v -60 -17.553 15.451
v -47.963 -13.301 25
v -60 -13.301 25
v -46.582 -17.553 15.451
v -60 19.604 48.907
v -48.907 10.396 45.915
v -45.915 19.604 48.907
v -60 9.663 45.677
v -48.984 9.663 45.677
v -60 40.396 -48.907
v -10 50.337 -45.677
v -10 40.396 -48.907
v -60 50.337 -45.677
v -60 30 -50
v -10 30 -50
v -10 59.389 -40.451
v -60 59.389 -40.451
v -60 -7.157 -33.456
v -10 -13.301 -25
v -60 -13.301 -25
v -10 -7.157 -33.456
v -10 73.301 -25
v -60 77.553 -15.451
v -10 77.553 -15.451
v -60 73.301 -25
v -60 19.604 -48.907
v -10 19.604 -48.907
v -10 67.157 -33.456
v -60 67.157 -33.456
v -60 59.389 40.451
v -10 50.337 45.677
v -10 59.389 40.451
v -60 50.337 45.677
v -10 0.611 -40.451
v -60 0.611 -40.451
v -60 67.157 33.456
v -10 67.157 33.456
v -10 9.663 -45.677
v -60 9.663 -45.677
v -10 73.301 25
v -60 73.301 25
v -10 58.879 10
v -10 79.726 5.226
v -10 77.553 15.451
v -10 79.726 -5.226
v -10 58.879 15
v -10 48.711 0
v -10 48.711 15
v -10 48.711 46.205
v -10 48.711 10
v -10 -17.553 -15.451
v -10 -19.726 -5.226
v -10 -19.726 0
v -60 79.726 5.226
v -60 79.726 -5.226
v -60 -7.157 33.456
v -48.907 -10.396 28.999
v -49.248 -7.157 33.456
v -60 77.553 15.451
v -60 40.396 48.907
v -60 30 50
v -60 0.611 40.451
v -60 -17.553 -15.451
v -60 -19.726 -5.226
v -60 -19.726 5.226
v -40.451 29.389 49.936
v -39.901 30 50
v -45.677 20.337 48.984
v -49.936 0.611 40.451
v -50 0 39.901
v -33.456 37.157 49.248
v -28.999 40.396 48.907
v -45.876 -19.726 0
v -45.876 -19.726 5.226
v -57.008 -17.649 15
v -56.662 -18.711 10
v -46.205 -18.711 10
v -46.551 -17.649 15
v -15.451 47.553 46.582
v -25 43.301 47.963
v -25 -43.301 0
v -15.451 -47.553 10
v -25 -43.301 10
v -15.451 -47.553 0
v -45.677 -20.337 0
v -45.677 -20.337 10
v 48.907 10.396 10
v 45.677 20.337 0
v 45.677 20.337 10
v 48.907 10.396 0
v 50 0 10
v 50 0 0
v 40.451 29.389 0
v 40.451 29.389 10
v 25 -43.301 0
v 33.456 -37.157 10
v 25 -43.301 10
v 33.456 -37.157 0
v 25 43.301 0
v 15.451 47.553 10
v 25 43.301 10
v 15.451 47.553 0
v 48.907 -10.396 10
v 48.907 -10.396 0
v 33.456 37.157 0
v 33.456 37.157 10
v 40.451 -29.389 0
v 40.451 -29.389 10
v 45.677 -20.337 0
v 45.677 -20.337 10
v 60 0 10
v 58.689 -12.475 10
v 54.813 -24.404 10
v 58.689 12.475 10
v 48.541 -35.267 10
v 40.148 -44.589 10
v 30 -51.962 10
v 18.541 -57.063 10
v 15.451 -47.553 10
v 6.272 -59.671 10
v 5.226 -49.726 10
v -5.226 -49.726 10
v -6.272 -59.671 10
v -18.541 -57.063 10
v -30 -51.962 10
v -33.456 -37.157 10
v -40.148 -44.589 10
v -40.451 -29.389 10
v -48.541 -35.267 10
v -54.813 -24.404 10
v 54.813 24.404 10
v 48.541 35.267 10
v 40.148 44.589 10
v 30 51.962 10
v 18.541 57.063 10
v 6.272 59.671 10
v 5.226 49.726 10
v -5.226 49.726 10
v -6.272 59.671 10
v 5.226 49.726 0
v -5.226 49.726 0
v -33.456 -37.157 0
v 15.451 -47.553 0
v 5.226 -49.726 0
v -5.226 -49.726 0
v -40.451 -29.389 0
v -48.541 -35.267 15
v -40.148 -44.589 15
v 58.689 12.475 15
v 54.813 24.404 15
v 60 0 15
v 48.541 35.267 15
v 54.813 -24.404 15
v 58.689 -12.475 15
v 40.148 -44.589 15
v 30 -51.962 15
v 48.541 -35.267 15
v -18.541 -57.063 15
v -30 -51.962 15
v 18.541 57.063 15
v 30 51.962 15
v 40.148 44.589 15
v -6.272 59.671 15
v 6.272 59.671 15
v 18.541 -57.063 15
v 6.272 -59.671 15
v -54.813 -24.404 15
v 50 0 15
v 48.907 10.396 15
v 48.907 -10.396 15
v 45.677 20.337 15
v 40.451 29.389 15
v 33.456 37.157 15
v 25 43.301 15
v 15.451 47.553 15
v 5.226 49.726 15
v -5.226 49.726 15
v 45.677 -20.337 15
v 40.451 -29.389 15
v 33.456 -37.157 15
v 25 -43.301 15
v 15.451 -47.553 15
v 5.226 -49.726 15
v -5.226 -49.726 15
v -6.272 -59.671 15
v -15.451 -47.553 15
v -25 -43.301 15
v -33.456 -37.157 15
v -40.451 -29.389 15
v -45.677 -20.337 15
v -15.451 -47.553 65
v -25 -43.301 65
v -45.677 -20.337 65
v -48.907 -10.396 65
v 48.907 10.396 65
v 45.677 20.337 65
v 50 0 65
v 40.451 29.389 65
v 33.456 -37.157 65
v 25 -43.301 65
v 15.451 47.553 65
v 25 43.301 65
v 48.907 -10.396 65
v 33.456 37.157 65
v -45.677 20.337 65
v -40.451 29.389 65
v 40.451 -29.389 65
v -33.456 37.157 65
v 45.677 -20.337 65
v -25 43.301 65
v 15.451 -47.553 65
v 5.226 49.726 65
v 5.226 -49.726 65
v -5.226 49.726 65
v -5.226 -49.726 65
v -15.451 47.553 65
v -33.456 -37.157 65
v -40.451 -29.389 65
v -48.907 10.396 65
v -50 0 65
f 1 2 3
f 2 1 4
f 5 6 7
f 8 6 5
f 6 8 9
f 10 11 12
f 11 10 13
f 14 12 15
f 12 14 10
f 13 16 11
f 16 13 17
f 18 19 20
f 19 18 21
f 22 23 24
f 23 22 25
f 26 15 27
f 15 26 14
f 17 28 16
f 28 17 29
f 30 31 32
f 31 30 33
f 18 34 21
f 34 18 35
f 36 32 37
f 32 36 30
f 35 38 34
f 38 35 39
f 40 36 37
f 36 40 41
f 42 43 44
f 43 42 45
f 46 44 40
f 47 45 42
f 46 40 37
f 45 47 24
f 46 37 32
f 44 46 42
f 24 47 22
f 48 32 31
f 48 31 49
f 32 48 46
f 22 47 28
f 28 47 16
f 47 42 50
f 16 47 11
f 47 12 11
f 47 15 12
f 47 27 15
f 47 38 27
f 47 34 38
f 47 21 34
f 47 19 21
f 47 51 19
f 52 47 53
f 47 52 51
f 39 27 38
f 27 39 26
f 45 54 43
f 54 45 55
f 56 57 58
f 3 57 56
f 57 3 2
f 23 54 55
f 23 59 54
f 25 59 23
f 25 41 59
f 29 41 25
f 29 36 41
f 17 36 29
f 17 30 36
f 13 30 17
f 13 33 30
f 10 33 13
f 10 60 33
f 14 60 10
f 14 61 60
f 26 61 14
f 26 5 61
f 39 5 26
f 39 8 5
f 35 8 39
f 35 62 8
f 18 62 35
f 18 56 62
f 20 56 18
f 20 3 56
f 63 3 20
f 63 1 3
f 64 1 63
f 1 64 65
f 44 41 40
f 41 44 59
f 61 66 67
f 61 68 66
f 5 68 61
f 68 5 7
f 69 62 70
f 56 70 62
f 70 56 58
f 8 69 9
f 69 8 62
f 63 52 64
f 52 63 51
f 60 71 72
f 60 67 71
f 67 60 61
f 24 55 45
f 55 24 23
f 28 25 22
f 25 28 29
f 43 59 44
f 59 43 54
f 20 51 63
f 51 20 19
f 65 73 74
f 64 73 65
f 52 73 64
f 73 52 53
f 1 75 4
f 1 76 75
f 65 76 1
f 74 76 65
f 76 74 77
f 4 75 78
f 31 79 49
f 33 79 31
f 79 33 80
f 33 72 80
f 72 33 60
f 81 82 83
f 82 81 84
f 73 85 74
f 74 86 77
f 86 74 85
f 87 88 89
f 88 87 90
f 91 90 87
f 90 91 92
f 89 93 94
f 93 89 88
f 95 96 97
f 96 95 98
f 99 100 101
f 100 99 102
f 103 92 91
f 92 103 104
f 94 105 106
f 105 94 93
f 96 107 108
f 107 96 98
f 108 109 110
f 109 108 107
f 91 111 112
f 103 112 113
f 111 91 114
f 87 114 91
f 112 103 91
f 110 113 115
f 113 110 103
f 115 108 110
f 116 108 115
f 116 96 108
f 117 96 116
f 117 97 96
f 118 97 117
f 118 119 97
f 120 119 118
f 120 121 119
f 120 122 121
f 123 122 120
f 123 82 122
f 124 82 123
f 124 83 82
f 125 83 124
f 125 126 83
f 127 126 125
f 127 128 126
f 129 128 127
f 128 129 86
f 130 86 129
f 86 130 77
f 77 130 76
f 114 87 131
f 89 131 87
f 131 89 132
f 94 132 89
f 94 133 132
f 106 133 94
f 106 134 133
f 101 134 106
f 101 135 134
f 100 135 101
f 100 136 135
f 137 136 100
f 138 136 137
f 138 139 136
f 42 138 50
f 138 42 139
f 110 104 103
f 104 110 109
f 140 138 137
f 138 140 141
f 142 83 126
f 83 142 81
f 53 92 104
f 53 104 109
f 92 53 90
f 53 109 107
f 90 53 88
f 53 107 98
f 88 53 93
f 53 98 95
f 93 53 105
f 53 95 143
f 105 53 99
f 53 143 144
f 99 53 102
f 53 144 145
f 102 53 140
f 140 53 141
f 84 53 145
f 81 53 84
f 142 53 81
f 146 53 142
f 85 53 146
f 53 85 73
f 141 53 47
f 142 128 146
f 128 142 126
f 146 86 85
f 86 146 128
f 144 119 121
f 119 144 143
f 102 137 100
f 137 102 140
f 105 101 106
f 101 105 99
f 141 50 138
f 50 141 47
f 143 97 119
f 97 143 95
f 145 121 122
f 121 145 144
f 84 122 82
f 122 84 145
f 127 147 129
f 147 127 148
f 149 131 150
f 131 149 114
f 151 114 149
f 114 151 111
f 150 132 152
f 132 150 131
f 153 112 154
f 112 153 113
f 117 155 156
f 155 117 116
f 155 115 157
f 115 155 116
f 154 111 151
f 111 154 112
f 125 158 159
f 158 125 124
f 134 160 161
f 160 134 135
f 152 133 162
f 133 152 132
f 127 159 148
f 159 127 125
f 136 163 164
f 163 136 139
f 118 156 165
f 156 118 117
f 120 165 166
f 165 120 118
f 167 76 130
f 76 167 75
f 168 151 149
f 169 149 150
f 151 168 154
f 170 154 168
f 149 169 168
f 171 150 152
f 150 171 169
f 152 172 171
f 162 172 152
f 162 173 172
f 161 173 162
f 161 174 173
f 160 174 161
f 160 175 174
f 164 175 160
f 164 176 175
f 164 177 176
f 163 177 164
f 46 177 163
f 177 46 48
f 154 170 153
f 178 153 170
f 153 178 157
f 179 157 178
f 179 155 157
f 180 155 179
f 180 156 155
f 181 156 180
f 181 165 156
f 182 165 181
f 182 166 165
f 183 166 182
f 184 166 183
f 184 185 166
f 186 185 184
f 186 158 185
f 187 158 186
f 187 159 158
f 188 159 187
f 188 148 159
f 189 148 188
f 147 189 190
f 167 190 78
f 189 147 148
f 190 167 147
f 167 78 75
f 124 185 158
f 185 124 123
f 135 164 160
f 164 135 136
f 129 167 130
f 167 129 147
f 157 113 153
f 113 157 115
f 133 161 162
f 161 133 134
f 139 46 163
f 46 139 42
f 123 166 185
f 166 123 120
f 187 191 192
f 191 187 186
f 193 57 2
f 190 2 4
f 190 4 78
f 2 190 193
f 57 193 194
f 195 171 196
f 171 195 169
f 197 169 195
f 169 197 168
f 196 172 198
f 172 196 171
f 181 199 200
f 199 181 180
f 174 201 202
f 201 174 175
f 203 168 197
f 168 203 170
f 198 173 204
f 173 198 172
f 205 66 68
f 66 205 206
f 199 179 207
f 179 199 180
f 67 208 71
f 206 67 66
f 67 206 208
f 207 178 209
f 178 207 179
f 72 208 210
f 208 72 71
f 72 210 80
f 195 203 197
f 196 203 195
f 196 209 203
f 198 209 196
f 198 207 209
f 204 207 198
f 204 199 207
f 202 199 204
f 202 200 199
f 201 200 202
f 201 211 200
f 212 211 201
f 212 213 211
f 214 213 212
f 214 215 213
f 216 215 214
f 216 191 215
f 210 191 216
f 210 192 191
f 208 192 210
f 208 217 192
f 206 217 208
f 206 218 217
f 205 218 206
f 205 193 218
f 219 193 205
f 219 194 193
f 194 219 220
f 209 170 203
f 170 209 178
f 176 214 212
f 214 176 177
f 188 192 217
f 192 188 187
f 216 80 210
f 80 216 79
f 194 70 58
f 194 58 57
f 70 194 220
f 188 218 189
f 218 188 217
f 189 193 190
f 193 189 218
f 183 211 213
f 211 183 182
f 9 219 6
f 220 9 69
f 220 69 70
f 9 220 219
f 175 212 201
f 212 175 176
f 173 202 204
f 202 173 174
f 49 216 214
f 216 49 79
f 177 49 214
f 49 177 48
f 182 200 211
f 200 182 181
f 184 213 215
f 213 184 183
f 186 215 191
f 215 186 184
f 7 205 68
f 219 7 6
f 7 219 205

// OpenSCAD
// Create the base of the tea cup
cylinder(r=50, h=10);

// Create the handle of the tea cup
translate([-60, 30, 0]) {
  rotate([0, 90, 0]) {
    cylinder(r=10, h=30);
  }
}

// Create the rim of the tea cup
translate([0, 0, 10]) {
  cylinder(r=60, h=5);
}

// Create the body of the tea cup
translate([0, 0, 15]) {
  cylinder(r=50, h=50);
}

// Cut out the handle from the body of the tea cup
translate([-60, 30, 0]) {
  rotate([0, 90, 0]) {
    difference() {
      cylinder(r=50, h=50);
      cylinder(r=10, h=30);
      }
      }
      }
